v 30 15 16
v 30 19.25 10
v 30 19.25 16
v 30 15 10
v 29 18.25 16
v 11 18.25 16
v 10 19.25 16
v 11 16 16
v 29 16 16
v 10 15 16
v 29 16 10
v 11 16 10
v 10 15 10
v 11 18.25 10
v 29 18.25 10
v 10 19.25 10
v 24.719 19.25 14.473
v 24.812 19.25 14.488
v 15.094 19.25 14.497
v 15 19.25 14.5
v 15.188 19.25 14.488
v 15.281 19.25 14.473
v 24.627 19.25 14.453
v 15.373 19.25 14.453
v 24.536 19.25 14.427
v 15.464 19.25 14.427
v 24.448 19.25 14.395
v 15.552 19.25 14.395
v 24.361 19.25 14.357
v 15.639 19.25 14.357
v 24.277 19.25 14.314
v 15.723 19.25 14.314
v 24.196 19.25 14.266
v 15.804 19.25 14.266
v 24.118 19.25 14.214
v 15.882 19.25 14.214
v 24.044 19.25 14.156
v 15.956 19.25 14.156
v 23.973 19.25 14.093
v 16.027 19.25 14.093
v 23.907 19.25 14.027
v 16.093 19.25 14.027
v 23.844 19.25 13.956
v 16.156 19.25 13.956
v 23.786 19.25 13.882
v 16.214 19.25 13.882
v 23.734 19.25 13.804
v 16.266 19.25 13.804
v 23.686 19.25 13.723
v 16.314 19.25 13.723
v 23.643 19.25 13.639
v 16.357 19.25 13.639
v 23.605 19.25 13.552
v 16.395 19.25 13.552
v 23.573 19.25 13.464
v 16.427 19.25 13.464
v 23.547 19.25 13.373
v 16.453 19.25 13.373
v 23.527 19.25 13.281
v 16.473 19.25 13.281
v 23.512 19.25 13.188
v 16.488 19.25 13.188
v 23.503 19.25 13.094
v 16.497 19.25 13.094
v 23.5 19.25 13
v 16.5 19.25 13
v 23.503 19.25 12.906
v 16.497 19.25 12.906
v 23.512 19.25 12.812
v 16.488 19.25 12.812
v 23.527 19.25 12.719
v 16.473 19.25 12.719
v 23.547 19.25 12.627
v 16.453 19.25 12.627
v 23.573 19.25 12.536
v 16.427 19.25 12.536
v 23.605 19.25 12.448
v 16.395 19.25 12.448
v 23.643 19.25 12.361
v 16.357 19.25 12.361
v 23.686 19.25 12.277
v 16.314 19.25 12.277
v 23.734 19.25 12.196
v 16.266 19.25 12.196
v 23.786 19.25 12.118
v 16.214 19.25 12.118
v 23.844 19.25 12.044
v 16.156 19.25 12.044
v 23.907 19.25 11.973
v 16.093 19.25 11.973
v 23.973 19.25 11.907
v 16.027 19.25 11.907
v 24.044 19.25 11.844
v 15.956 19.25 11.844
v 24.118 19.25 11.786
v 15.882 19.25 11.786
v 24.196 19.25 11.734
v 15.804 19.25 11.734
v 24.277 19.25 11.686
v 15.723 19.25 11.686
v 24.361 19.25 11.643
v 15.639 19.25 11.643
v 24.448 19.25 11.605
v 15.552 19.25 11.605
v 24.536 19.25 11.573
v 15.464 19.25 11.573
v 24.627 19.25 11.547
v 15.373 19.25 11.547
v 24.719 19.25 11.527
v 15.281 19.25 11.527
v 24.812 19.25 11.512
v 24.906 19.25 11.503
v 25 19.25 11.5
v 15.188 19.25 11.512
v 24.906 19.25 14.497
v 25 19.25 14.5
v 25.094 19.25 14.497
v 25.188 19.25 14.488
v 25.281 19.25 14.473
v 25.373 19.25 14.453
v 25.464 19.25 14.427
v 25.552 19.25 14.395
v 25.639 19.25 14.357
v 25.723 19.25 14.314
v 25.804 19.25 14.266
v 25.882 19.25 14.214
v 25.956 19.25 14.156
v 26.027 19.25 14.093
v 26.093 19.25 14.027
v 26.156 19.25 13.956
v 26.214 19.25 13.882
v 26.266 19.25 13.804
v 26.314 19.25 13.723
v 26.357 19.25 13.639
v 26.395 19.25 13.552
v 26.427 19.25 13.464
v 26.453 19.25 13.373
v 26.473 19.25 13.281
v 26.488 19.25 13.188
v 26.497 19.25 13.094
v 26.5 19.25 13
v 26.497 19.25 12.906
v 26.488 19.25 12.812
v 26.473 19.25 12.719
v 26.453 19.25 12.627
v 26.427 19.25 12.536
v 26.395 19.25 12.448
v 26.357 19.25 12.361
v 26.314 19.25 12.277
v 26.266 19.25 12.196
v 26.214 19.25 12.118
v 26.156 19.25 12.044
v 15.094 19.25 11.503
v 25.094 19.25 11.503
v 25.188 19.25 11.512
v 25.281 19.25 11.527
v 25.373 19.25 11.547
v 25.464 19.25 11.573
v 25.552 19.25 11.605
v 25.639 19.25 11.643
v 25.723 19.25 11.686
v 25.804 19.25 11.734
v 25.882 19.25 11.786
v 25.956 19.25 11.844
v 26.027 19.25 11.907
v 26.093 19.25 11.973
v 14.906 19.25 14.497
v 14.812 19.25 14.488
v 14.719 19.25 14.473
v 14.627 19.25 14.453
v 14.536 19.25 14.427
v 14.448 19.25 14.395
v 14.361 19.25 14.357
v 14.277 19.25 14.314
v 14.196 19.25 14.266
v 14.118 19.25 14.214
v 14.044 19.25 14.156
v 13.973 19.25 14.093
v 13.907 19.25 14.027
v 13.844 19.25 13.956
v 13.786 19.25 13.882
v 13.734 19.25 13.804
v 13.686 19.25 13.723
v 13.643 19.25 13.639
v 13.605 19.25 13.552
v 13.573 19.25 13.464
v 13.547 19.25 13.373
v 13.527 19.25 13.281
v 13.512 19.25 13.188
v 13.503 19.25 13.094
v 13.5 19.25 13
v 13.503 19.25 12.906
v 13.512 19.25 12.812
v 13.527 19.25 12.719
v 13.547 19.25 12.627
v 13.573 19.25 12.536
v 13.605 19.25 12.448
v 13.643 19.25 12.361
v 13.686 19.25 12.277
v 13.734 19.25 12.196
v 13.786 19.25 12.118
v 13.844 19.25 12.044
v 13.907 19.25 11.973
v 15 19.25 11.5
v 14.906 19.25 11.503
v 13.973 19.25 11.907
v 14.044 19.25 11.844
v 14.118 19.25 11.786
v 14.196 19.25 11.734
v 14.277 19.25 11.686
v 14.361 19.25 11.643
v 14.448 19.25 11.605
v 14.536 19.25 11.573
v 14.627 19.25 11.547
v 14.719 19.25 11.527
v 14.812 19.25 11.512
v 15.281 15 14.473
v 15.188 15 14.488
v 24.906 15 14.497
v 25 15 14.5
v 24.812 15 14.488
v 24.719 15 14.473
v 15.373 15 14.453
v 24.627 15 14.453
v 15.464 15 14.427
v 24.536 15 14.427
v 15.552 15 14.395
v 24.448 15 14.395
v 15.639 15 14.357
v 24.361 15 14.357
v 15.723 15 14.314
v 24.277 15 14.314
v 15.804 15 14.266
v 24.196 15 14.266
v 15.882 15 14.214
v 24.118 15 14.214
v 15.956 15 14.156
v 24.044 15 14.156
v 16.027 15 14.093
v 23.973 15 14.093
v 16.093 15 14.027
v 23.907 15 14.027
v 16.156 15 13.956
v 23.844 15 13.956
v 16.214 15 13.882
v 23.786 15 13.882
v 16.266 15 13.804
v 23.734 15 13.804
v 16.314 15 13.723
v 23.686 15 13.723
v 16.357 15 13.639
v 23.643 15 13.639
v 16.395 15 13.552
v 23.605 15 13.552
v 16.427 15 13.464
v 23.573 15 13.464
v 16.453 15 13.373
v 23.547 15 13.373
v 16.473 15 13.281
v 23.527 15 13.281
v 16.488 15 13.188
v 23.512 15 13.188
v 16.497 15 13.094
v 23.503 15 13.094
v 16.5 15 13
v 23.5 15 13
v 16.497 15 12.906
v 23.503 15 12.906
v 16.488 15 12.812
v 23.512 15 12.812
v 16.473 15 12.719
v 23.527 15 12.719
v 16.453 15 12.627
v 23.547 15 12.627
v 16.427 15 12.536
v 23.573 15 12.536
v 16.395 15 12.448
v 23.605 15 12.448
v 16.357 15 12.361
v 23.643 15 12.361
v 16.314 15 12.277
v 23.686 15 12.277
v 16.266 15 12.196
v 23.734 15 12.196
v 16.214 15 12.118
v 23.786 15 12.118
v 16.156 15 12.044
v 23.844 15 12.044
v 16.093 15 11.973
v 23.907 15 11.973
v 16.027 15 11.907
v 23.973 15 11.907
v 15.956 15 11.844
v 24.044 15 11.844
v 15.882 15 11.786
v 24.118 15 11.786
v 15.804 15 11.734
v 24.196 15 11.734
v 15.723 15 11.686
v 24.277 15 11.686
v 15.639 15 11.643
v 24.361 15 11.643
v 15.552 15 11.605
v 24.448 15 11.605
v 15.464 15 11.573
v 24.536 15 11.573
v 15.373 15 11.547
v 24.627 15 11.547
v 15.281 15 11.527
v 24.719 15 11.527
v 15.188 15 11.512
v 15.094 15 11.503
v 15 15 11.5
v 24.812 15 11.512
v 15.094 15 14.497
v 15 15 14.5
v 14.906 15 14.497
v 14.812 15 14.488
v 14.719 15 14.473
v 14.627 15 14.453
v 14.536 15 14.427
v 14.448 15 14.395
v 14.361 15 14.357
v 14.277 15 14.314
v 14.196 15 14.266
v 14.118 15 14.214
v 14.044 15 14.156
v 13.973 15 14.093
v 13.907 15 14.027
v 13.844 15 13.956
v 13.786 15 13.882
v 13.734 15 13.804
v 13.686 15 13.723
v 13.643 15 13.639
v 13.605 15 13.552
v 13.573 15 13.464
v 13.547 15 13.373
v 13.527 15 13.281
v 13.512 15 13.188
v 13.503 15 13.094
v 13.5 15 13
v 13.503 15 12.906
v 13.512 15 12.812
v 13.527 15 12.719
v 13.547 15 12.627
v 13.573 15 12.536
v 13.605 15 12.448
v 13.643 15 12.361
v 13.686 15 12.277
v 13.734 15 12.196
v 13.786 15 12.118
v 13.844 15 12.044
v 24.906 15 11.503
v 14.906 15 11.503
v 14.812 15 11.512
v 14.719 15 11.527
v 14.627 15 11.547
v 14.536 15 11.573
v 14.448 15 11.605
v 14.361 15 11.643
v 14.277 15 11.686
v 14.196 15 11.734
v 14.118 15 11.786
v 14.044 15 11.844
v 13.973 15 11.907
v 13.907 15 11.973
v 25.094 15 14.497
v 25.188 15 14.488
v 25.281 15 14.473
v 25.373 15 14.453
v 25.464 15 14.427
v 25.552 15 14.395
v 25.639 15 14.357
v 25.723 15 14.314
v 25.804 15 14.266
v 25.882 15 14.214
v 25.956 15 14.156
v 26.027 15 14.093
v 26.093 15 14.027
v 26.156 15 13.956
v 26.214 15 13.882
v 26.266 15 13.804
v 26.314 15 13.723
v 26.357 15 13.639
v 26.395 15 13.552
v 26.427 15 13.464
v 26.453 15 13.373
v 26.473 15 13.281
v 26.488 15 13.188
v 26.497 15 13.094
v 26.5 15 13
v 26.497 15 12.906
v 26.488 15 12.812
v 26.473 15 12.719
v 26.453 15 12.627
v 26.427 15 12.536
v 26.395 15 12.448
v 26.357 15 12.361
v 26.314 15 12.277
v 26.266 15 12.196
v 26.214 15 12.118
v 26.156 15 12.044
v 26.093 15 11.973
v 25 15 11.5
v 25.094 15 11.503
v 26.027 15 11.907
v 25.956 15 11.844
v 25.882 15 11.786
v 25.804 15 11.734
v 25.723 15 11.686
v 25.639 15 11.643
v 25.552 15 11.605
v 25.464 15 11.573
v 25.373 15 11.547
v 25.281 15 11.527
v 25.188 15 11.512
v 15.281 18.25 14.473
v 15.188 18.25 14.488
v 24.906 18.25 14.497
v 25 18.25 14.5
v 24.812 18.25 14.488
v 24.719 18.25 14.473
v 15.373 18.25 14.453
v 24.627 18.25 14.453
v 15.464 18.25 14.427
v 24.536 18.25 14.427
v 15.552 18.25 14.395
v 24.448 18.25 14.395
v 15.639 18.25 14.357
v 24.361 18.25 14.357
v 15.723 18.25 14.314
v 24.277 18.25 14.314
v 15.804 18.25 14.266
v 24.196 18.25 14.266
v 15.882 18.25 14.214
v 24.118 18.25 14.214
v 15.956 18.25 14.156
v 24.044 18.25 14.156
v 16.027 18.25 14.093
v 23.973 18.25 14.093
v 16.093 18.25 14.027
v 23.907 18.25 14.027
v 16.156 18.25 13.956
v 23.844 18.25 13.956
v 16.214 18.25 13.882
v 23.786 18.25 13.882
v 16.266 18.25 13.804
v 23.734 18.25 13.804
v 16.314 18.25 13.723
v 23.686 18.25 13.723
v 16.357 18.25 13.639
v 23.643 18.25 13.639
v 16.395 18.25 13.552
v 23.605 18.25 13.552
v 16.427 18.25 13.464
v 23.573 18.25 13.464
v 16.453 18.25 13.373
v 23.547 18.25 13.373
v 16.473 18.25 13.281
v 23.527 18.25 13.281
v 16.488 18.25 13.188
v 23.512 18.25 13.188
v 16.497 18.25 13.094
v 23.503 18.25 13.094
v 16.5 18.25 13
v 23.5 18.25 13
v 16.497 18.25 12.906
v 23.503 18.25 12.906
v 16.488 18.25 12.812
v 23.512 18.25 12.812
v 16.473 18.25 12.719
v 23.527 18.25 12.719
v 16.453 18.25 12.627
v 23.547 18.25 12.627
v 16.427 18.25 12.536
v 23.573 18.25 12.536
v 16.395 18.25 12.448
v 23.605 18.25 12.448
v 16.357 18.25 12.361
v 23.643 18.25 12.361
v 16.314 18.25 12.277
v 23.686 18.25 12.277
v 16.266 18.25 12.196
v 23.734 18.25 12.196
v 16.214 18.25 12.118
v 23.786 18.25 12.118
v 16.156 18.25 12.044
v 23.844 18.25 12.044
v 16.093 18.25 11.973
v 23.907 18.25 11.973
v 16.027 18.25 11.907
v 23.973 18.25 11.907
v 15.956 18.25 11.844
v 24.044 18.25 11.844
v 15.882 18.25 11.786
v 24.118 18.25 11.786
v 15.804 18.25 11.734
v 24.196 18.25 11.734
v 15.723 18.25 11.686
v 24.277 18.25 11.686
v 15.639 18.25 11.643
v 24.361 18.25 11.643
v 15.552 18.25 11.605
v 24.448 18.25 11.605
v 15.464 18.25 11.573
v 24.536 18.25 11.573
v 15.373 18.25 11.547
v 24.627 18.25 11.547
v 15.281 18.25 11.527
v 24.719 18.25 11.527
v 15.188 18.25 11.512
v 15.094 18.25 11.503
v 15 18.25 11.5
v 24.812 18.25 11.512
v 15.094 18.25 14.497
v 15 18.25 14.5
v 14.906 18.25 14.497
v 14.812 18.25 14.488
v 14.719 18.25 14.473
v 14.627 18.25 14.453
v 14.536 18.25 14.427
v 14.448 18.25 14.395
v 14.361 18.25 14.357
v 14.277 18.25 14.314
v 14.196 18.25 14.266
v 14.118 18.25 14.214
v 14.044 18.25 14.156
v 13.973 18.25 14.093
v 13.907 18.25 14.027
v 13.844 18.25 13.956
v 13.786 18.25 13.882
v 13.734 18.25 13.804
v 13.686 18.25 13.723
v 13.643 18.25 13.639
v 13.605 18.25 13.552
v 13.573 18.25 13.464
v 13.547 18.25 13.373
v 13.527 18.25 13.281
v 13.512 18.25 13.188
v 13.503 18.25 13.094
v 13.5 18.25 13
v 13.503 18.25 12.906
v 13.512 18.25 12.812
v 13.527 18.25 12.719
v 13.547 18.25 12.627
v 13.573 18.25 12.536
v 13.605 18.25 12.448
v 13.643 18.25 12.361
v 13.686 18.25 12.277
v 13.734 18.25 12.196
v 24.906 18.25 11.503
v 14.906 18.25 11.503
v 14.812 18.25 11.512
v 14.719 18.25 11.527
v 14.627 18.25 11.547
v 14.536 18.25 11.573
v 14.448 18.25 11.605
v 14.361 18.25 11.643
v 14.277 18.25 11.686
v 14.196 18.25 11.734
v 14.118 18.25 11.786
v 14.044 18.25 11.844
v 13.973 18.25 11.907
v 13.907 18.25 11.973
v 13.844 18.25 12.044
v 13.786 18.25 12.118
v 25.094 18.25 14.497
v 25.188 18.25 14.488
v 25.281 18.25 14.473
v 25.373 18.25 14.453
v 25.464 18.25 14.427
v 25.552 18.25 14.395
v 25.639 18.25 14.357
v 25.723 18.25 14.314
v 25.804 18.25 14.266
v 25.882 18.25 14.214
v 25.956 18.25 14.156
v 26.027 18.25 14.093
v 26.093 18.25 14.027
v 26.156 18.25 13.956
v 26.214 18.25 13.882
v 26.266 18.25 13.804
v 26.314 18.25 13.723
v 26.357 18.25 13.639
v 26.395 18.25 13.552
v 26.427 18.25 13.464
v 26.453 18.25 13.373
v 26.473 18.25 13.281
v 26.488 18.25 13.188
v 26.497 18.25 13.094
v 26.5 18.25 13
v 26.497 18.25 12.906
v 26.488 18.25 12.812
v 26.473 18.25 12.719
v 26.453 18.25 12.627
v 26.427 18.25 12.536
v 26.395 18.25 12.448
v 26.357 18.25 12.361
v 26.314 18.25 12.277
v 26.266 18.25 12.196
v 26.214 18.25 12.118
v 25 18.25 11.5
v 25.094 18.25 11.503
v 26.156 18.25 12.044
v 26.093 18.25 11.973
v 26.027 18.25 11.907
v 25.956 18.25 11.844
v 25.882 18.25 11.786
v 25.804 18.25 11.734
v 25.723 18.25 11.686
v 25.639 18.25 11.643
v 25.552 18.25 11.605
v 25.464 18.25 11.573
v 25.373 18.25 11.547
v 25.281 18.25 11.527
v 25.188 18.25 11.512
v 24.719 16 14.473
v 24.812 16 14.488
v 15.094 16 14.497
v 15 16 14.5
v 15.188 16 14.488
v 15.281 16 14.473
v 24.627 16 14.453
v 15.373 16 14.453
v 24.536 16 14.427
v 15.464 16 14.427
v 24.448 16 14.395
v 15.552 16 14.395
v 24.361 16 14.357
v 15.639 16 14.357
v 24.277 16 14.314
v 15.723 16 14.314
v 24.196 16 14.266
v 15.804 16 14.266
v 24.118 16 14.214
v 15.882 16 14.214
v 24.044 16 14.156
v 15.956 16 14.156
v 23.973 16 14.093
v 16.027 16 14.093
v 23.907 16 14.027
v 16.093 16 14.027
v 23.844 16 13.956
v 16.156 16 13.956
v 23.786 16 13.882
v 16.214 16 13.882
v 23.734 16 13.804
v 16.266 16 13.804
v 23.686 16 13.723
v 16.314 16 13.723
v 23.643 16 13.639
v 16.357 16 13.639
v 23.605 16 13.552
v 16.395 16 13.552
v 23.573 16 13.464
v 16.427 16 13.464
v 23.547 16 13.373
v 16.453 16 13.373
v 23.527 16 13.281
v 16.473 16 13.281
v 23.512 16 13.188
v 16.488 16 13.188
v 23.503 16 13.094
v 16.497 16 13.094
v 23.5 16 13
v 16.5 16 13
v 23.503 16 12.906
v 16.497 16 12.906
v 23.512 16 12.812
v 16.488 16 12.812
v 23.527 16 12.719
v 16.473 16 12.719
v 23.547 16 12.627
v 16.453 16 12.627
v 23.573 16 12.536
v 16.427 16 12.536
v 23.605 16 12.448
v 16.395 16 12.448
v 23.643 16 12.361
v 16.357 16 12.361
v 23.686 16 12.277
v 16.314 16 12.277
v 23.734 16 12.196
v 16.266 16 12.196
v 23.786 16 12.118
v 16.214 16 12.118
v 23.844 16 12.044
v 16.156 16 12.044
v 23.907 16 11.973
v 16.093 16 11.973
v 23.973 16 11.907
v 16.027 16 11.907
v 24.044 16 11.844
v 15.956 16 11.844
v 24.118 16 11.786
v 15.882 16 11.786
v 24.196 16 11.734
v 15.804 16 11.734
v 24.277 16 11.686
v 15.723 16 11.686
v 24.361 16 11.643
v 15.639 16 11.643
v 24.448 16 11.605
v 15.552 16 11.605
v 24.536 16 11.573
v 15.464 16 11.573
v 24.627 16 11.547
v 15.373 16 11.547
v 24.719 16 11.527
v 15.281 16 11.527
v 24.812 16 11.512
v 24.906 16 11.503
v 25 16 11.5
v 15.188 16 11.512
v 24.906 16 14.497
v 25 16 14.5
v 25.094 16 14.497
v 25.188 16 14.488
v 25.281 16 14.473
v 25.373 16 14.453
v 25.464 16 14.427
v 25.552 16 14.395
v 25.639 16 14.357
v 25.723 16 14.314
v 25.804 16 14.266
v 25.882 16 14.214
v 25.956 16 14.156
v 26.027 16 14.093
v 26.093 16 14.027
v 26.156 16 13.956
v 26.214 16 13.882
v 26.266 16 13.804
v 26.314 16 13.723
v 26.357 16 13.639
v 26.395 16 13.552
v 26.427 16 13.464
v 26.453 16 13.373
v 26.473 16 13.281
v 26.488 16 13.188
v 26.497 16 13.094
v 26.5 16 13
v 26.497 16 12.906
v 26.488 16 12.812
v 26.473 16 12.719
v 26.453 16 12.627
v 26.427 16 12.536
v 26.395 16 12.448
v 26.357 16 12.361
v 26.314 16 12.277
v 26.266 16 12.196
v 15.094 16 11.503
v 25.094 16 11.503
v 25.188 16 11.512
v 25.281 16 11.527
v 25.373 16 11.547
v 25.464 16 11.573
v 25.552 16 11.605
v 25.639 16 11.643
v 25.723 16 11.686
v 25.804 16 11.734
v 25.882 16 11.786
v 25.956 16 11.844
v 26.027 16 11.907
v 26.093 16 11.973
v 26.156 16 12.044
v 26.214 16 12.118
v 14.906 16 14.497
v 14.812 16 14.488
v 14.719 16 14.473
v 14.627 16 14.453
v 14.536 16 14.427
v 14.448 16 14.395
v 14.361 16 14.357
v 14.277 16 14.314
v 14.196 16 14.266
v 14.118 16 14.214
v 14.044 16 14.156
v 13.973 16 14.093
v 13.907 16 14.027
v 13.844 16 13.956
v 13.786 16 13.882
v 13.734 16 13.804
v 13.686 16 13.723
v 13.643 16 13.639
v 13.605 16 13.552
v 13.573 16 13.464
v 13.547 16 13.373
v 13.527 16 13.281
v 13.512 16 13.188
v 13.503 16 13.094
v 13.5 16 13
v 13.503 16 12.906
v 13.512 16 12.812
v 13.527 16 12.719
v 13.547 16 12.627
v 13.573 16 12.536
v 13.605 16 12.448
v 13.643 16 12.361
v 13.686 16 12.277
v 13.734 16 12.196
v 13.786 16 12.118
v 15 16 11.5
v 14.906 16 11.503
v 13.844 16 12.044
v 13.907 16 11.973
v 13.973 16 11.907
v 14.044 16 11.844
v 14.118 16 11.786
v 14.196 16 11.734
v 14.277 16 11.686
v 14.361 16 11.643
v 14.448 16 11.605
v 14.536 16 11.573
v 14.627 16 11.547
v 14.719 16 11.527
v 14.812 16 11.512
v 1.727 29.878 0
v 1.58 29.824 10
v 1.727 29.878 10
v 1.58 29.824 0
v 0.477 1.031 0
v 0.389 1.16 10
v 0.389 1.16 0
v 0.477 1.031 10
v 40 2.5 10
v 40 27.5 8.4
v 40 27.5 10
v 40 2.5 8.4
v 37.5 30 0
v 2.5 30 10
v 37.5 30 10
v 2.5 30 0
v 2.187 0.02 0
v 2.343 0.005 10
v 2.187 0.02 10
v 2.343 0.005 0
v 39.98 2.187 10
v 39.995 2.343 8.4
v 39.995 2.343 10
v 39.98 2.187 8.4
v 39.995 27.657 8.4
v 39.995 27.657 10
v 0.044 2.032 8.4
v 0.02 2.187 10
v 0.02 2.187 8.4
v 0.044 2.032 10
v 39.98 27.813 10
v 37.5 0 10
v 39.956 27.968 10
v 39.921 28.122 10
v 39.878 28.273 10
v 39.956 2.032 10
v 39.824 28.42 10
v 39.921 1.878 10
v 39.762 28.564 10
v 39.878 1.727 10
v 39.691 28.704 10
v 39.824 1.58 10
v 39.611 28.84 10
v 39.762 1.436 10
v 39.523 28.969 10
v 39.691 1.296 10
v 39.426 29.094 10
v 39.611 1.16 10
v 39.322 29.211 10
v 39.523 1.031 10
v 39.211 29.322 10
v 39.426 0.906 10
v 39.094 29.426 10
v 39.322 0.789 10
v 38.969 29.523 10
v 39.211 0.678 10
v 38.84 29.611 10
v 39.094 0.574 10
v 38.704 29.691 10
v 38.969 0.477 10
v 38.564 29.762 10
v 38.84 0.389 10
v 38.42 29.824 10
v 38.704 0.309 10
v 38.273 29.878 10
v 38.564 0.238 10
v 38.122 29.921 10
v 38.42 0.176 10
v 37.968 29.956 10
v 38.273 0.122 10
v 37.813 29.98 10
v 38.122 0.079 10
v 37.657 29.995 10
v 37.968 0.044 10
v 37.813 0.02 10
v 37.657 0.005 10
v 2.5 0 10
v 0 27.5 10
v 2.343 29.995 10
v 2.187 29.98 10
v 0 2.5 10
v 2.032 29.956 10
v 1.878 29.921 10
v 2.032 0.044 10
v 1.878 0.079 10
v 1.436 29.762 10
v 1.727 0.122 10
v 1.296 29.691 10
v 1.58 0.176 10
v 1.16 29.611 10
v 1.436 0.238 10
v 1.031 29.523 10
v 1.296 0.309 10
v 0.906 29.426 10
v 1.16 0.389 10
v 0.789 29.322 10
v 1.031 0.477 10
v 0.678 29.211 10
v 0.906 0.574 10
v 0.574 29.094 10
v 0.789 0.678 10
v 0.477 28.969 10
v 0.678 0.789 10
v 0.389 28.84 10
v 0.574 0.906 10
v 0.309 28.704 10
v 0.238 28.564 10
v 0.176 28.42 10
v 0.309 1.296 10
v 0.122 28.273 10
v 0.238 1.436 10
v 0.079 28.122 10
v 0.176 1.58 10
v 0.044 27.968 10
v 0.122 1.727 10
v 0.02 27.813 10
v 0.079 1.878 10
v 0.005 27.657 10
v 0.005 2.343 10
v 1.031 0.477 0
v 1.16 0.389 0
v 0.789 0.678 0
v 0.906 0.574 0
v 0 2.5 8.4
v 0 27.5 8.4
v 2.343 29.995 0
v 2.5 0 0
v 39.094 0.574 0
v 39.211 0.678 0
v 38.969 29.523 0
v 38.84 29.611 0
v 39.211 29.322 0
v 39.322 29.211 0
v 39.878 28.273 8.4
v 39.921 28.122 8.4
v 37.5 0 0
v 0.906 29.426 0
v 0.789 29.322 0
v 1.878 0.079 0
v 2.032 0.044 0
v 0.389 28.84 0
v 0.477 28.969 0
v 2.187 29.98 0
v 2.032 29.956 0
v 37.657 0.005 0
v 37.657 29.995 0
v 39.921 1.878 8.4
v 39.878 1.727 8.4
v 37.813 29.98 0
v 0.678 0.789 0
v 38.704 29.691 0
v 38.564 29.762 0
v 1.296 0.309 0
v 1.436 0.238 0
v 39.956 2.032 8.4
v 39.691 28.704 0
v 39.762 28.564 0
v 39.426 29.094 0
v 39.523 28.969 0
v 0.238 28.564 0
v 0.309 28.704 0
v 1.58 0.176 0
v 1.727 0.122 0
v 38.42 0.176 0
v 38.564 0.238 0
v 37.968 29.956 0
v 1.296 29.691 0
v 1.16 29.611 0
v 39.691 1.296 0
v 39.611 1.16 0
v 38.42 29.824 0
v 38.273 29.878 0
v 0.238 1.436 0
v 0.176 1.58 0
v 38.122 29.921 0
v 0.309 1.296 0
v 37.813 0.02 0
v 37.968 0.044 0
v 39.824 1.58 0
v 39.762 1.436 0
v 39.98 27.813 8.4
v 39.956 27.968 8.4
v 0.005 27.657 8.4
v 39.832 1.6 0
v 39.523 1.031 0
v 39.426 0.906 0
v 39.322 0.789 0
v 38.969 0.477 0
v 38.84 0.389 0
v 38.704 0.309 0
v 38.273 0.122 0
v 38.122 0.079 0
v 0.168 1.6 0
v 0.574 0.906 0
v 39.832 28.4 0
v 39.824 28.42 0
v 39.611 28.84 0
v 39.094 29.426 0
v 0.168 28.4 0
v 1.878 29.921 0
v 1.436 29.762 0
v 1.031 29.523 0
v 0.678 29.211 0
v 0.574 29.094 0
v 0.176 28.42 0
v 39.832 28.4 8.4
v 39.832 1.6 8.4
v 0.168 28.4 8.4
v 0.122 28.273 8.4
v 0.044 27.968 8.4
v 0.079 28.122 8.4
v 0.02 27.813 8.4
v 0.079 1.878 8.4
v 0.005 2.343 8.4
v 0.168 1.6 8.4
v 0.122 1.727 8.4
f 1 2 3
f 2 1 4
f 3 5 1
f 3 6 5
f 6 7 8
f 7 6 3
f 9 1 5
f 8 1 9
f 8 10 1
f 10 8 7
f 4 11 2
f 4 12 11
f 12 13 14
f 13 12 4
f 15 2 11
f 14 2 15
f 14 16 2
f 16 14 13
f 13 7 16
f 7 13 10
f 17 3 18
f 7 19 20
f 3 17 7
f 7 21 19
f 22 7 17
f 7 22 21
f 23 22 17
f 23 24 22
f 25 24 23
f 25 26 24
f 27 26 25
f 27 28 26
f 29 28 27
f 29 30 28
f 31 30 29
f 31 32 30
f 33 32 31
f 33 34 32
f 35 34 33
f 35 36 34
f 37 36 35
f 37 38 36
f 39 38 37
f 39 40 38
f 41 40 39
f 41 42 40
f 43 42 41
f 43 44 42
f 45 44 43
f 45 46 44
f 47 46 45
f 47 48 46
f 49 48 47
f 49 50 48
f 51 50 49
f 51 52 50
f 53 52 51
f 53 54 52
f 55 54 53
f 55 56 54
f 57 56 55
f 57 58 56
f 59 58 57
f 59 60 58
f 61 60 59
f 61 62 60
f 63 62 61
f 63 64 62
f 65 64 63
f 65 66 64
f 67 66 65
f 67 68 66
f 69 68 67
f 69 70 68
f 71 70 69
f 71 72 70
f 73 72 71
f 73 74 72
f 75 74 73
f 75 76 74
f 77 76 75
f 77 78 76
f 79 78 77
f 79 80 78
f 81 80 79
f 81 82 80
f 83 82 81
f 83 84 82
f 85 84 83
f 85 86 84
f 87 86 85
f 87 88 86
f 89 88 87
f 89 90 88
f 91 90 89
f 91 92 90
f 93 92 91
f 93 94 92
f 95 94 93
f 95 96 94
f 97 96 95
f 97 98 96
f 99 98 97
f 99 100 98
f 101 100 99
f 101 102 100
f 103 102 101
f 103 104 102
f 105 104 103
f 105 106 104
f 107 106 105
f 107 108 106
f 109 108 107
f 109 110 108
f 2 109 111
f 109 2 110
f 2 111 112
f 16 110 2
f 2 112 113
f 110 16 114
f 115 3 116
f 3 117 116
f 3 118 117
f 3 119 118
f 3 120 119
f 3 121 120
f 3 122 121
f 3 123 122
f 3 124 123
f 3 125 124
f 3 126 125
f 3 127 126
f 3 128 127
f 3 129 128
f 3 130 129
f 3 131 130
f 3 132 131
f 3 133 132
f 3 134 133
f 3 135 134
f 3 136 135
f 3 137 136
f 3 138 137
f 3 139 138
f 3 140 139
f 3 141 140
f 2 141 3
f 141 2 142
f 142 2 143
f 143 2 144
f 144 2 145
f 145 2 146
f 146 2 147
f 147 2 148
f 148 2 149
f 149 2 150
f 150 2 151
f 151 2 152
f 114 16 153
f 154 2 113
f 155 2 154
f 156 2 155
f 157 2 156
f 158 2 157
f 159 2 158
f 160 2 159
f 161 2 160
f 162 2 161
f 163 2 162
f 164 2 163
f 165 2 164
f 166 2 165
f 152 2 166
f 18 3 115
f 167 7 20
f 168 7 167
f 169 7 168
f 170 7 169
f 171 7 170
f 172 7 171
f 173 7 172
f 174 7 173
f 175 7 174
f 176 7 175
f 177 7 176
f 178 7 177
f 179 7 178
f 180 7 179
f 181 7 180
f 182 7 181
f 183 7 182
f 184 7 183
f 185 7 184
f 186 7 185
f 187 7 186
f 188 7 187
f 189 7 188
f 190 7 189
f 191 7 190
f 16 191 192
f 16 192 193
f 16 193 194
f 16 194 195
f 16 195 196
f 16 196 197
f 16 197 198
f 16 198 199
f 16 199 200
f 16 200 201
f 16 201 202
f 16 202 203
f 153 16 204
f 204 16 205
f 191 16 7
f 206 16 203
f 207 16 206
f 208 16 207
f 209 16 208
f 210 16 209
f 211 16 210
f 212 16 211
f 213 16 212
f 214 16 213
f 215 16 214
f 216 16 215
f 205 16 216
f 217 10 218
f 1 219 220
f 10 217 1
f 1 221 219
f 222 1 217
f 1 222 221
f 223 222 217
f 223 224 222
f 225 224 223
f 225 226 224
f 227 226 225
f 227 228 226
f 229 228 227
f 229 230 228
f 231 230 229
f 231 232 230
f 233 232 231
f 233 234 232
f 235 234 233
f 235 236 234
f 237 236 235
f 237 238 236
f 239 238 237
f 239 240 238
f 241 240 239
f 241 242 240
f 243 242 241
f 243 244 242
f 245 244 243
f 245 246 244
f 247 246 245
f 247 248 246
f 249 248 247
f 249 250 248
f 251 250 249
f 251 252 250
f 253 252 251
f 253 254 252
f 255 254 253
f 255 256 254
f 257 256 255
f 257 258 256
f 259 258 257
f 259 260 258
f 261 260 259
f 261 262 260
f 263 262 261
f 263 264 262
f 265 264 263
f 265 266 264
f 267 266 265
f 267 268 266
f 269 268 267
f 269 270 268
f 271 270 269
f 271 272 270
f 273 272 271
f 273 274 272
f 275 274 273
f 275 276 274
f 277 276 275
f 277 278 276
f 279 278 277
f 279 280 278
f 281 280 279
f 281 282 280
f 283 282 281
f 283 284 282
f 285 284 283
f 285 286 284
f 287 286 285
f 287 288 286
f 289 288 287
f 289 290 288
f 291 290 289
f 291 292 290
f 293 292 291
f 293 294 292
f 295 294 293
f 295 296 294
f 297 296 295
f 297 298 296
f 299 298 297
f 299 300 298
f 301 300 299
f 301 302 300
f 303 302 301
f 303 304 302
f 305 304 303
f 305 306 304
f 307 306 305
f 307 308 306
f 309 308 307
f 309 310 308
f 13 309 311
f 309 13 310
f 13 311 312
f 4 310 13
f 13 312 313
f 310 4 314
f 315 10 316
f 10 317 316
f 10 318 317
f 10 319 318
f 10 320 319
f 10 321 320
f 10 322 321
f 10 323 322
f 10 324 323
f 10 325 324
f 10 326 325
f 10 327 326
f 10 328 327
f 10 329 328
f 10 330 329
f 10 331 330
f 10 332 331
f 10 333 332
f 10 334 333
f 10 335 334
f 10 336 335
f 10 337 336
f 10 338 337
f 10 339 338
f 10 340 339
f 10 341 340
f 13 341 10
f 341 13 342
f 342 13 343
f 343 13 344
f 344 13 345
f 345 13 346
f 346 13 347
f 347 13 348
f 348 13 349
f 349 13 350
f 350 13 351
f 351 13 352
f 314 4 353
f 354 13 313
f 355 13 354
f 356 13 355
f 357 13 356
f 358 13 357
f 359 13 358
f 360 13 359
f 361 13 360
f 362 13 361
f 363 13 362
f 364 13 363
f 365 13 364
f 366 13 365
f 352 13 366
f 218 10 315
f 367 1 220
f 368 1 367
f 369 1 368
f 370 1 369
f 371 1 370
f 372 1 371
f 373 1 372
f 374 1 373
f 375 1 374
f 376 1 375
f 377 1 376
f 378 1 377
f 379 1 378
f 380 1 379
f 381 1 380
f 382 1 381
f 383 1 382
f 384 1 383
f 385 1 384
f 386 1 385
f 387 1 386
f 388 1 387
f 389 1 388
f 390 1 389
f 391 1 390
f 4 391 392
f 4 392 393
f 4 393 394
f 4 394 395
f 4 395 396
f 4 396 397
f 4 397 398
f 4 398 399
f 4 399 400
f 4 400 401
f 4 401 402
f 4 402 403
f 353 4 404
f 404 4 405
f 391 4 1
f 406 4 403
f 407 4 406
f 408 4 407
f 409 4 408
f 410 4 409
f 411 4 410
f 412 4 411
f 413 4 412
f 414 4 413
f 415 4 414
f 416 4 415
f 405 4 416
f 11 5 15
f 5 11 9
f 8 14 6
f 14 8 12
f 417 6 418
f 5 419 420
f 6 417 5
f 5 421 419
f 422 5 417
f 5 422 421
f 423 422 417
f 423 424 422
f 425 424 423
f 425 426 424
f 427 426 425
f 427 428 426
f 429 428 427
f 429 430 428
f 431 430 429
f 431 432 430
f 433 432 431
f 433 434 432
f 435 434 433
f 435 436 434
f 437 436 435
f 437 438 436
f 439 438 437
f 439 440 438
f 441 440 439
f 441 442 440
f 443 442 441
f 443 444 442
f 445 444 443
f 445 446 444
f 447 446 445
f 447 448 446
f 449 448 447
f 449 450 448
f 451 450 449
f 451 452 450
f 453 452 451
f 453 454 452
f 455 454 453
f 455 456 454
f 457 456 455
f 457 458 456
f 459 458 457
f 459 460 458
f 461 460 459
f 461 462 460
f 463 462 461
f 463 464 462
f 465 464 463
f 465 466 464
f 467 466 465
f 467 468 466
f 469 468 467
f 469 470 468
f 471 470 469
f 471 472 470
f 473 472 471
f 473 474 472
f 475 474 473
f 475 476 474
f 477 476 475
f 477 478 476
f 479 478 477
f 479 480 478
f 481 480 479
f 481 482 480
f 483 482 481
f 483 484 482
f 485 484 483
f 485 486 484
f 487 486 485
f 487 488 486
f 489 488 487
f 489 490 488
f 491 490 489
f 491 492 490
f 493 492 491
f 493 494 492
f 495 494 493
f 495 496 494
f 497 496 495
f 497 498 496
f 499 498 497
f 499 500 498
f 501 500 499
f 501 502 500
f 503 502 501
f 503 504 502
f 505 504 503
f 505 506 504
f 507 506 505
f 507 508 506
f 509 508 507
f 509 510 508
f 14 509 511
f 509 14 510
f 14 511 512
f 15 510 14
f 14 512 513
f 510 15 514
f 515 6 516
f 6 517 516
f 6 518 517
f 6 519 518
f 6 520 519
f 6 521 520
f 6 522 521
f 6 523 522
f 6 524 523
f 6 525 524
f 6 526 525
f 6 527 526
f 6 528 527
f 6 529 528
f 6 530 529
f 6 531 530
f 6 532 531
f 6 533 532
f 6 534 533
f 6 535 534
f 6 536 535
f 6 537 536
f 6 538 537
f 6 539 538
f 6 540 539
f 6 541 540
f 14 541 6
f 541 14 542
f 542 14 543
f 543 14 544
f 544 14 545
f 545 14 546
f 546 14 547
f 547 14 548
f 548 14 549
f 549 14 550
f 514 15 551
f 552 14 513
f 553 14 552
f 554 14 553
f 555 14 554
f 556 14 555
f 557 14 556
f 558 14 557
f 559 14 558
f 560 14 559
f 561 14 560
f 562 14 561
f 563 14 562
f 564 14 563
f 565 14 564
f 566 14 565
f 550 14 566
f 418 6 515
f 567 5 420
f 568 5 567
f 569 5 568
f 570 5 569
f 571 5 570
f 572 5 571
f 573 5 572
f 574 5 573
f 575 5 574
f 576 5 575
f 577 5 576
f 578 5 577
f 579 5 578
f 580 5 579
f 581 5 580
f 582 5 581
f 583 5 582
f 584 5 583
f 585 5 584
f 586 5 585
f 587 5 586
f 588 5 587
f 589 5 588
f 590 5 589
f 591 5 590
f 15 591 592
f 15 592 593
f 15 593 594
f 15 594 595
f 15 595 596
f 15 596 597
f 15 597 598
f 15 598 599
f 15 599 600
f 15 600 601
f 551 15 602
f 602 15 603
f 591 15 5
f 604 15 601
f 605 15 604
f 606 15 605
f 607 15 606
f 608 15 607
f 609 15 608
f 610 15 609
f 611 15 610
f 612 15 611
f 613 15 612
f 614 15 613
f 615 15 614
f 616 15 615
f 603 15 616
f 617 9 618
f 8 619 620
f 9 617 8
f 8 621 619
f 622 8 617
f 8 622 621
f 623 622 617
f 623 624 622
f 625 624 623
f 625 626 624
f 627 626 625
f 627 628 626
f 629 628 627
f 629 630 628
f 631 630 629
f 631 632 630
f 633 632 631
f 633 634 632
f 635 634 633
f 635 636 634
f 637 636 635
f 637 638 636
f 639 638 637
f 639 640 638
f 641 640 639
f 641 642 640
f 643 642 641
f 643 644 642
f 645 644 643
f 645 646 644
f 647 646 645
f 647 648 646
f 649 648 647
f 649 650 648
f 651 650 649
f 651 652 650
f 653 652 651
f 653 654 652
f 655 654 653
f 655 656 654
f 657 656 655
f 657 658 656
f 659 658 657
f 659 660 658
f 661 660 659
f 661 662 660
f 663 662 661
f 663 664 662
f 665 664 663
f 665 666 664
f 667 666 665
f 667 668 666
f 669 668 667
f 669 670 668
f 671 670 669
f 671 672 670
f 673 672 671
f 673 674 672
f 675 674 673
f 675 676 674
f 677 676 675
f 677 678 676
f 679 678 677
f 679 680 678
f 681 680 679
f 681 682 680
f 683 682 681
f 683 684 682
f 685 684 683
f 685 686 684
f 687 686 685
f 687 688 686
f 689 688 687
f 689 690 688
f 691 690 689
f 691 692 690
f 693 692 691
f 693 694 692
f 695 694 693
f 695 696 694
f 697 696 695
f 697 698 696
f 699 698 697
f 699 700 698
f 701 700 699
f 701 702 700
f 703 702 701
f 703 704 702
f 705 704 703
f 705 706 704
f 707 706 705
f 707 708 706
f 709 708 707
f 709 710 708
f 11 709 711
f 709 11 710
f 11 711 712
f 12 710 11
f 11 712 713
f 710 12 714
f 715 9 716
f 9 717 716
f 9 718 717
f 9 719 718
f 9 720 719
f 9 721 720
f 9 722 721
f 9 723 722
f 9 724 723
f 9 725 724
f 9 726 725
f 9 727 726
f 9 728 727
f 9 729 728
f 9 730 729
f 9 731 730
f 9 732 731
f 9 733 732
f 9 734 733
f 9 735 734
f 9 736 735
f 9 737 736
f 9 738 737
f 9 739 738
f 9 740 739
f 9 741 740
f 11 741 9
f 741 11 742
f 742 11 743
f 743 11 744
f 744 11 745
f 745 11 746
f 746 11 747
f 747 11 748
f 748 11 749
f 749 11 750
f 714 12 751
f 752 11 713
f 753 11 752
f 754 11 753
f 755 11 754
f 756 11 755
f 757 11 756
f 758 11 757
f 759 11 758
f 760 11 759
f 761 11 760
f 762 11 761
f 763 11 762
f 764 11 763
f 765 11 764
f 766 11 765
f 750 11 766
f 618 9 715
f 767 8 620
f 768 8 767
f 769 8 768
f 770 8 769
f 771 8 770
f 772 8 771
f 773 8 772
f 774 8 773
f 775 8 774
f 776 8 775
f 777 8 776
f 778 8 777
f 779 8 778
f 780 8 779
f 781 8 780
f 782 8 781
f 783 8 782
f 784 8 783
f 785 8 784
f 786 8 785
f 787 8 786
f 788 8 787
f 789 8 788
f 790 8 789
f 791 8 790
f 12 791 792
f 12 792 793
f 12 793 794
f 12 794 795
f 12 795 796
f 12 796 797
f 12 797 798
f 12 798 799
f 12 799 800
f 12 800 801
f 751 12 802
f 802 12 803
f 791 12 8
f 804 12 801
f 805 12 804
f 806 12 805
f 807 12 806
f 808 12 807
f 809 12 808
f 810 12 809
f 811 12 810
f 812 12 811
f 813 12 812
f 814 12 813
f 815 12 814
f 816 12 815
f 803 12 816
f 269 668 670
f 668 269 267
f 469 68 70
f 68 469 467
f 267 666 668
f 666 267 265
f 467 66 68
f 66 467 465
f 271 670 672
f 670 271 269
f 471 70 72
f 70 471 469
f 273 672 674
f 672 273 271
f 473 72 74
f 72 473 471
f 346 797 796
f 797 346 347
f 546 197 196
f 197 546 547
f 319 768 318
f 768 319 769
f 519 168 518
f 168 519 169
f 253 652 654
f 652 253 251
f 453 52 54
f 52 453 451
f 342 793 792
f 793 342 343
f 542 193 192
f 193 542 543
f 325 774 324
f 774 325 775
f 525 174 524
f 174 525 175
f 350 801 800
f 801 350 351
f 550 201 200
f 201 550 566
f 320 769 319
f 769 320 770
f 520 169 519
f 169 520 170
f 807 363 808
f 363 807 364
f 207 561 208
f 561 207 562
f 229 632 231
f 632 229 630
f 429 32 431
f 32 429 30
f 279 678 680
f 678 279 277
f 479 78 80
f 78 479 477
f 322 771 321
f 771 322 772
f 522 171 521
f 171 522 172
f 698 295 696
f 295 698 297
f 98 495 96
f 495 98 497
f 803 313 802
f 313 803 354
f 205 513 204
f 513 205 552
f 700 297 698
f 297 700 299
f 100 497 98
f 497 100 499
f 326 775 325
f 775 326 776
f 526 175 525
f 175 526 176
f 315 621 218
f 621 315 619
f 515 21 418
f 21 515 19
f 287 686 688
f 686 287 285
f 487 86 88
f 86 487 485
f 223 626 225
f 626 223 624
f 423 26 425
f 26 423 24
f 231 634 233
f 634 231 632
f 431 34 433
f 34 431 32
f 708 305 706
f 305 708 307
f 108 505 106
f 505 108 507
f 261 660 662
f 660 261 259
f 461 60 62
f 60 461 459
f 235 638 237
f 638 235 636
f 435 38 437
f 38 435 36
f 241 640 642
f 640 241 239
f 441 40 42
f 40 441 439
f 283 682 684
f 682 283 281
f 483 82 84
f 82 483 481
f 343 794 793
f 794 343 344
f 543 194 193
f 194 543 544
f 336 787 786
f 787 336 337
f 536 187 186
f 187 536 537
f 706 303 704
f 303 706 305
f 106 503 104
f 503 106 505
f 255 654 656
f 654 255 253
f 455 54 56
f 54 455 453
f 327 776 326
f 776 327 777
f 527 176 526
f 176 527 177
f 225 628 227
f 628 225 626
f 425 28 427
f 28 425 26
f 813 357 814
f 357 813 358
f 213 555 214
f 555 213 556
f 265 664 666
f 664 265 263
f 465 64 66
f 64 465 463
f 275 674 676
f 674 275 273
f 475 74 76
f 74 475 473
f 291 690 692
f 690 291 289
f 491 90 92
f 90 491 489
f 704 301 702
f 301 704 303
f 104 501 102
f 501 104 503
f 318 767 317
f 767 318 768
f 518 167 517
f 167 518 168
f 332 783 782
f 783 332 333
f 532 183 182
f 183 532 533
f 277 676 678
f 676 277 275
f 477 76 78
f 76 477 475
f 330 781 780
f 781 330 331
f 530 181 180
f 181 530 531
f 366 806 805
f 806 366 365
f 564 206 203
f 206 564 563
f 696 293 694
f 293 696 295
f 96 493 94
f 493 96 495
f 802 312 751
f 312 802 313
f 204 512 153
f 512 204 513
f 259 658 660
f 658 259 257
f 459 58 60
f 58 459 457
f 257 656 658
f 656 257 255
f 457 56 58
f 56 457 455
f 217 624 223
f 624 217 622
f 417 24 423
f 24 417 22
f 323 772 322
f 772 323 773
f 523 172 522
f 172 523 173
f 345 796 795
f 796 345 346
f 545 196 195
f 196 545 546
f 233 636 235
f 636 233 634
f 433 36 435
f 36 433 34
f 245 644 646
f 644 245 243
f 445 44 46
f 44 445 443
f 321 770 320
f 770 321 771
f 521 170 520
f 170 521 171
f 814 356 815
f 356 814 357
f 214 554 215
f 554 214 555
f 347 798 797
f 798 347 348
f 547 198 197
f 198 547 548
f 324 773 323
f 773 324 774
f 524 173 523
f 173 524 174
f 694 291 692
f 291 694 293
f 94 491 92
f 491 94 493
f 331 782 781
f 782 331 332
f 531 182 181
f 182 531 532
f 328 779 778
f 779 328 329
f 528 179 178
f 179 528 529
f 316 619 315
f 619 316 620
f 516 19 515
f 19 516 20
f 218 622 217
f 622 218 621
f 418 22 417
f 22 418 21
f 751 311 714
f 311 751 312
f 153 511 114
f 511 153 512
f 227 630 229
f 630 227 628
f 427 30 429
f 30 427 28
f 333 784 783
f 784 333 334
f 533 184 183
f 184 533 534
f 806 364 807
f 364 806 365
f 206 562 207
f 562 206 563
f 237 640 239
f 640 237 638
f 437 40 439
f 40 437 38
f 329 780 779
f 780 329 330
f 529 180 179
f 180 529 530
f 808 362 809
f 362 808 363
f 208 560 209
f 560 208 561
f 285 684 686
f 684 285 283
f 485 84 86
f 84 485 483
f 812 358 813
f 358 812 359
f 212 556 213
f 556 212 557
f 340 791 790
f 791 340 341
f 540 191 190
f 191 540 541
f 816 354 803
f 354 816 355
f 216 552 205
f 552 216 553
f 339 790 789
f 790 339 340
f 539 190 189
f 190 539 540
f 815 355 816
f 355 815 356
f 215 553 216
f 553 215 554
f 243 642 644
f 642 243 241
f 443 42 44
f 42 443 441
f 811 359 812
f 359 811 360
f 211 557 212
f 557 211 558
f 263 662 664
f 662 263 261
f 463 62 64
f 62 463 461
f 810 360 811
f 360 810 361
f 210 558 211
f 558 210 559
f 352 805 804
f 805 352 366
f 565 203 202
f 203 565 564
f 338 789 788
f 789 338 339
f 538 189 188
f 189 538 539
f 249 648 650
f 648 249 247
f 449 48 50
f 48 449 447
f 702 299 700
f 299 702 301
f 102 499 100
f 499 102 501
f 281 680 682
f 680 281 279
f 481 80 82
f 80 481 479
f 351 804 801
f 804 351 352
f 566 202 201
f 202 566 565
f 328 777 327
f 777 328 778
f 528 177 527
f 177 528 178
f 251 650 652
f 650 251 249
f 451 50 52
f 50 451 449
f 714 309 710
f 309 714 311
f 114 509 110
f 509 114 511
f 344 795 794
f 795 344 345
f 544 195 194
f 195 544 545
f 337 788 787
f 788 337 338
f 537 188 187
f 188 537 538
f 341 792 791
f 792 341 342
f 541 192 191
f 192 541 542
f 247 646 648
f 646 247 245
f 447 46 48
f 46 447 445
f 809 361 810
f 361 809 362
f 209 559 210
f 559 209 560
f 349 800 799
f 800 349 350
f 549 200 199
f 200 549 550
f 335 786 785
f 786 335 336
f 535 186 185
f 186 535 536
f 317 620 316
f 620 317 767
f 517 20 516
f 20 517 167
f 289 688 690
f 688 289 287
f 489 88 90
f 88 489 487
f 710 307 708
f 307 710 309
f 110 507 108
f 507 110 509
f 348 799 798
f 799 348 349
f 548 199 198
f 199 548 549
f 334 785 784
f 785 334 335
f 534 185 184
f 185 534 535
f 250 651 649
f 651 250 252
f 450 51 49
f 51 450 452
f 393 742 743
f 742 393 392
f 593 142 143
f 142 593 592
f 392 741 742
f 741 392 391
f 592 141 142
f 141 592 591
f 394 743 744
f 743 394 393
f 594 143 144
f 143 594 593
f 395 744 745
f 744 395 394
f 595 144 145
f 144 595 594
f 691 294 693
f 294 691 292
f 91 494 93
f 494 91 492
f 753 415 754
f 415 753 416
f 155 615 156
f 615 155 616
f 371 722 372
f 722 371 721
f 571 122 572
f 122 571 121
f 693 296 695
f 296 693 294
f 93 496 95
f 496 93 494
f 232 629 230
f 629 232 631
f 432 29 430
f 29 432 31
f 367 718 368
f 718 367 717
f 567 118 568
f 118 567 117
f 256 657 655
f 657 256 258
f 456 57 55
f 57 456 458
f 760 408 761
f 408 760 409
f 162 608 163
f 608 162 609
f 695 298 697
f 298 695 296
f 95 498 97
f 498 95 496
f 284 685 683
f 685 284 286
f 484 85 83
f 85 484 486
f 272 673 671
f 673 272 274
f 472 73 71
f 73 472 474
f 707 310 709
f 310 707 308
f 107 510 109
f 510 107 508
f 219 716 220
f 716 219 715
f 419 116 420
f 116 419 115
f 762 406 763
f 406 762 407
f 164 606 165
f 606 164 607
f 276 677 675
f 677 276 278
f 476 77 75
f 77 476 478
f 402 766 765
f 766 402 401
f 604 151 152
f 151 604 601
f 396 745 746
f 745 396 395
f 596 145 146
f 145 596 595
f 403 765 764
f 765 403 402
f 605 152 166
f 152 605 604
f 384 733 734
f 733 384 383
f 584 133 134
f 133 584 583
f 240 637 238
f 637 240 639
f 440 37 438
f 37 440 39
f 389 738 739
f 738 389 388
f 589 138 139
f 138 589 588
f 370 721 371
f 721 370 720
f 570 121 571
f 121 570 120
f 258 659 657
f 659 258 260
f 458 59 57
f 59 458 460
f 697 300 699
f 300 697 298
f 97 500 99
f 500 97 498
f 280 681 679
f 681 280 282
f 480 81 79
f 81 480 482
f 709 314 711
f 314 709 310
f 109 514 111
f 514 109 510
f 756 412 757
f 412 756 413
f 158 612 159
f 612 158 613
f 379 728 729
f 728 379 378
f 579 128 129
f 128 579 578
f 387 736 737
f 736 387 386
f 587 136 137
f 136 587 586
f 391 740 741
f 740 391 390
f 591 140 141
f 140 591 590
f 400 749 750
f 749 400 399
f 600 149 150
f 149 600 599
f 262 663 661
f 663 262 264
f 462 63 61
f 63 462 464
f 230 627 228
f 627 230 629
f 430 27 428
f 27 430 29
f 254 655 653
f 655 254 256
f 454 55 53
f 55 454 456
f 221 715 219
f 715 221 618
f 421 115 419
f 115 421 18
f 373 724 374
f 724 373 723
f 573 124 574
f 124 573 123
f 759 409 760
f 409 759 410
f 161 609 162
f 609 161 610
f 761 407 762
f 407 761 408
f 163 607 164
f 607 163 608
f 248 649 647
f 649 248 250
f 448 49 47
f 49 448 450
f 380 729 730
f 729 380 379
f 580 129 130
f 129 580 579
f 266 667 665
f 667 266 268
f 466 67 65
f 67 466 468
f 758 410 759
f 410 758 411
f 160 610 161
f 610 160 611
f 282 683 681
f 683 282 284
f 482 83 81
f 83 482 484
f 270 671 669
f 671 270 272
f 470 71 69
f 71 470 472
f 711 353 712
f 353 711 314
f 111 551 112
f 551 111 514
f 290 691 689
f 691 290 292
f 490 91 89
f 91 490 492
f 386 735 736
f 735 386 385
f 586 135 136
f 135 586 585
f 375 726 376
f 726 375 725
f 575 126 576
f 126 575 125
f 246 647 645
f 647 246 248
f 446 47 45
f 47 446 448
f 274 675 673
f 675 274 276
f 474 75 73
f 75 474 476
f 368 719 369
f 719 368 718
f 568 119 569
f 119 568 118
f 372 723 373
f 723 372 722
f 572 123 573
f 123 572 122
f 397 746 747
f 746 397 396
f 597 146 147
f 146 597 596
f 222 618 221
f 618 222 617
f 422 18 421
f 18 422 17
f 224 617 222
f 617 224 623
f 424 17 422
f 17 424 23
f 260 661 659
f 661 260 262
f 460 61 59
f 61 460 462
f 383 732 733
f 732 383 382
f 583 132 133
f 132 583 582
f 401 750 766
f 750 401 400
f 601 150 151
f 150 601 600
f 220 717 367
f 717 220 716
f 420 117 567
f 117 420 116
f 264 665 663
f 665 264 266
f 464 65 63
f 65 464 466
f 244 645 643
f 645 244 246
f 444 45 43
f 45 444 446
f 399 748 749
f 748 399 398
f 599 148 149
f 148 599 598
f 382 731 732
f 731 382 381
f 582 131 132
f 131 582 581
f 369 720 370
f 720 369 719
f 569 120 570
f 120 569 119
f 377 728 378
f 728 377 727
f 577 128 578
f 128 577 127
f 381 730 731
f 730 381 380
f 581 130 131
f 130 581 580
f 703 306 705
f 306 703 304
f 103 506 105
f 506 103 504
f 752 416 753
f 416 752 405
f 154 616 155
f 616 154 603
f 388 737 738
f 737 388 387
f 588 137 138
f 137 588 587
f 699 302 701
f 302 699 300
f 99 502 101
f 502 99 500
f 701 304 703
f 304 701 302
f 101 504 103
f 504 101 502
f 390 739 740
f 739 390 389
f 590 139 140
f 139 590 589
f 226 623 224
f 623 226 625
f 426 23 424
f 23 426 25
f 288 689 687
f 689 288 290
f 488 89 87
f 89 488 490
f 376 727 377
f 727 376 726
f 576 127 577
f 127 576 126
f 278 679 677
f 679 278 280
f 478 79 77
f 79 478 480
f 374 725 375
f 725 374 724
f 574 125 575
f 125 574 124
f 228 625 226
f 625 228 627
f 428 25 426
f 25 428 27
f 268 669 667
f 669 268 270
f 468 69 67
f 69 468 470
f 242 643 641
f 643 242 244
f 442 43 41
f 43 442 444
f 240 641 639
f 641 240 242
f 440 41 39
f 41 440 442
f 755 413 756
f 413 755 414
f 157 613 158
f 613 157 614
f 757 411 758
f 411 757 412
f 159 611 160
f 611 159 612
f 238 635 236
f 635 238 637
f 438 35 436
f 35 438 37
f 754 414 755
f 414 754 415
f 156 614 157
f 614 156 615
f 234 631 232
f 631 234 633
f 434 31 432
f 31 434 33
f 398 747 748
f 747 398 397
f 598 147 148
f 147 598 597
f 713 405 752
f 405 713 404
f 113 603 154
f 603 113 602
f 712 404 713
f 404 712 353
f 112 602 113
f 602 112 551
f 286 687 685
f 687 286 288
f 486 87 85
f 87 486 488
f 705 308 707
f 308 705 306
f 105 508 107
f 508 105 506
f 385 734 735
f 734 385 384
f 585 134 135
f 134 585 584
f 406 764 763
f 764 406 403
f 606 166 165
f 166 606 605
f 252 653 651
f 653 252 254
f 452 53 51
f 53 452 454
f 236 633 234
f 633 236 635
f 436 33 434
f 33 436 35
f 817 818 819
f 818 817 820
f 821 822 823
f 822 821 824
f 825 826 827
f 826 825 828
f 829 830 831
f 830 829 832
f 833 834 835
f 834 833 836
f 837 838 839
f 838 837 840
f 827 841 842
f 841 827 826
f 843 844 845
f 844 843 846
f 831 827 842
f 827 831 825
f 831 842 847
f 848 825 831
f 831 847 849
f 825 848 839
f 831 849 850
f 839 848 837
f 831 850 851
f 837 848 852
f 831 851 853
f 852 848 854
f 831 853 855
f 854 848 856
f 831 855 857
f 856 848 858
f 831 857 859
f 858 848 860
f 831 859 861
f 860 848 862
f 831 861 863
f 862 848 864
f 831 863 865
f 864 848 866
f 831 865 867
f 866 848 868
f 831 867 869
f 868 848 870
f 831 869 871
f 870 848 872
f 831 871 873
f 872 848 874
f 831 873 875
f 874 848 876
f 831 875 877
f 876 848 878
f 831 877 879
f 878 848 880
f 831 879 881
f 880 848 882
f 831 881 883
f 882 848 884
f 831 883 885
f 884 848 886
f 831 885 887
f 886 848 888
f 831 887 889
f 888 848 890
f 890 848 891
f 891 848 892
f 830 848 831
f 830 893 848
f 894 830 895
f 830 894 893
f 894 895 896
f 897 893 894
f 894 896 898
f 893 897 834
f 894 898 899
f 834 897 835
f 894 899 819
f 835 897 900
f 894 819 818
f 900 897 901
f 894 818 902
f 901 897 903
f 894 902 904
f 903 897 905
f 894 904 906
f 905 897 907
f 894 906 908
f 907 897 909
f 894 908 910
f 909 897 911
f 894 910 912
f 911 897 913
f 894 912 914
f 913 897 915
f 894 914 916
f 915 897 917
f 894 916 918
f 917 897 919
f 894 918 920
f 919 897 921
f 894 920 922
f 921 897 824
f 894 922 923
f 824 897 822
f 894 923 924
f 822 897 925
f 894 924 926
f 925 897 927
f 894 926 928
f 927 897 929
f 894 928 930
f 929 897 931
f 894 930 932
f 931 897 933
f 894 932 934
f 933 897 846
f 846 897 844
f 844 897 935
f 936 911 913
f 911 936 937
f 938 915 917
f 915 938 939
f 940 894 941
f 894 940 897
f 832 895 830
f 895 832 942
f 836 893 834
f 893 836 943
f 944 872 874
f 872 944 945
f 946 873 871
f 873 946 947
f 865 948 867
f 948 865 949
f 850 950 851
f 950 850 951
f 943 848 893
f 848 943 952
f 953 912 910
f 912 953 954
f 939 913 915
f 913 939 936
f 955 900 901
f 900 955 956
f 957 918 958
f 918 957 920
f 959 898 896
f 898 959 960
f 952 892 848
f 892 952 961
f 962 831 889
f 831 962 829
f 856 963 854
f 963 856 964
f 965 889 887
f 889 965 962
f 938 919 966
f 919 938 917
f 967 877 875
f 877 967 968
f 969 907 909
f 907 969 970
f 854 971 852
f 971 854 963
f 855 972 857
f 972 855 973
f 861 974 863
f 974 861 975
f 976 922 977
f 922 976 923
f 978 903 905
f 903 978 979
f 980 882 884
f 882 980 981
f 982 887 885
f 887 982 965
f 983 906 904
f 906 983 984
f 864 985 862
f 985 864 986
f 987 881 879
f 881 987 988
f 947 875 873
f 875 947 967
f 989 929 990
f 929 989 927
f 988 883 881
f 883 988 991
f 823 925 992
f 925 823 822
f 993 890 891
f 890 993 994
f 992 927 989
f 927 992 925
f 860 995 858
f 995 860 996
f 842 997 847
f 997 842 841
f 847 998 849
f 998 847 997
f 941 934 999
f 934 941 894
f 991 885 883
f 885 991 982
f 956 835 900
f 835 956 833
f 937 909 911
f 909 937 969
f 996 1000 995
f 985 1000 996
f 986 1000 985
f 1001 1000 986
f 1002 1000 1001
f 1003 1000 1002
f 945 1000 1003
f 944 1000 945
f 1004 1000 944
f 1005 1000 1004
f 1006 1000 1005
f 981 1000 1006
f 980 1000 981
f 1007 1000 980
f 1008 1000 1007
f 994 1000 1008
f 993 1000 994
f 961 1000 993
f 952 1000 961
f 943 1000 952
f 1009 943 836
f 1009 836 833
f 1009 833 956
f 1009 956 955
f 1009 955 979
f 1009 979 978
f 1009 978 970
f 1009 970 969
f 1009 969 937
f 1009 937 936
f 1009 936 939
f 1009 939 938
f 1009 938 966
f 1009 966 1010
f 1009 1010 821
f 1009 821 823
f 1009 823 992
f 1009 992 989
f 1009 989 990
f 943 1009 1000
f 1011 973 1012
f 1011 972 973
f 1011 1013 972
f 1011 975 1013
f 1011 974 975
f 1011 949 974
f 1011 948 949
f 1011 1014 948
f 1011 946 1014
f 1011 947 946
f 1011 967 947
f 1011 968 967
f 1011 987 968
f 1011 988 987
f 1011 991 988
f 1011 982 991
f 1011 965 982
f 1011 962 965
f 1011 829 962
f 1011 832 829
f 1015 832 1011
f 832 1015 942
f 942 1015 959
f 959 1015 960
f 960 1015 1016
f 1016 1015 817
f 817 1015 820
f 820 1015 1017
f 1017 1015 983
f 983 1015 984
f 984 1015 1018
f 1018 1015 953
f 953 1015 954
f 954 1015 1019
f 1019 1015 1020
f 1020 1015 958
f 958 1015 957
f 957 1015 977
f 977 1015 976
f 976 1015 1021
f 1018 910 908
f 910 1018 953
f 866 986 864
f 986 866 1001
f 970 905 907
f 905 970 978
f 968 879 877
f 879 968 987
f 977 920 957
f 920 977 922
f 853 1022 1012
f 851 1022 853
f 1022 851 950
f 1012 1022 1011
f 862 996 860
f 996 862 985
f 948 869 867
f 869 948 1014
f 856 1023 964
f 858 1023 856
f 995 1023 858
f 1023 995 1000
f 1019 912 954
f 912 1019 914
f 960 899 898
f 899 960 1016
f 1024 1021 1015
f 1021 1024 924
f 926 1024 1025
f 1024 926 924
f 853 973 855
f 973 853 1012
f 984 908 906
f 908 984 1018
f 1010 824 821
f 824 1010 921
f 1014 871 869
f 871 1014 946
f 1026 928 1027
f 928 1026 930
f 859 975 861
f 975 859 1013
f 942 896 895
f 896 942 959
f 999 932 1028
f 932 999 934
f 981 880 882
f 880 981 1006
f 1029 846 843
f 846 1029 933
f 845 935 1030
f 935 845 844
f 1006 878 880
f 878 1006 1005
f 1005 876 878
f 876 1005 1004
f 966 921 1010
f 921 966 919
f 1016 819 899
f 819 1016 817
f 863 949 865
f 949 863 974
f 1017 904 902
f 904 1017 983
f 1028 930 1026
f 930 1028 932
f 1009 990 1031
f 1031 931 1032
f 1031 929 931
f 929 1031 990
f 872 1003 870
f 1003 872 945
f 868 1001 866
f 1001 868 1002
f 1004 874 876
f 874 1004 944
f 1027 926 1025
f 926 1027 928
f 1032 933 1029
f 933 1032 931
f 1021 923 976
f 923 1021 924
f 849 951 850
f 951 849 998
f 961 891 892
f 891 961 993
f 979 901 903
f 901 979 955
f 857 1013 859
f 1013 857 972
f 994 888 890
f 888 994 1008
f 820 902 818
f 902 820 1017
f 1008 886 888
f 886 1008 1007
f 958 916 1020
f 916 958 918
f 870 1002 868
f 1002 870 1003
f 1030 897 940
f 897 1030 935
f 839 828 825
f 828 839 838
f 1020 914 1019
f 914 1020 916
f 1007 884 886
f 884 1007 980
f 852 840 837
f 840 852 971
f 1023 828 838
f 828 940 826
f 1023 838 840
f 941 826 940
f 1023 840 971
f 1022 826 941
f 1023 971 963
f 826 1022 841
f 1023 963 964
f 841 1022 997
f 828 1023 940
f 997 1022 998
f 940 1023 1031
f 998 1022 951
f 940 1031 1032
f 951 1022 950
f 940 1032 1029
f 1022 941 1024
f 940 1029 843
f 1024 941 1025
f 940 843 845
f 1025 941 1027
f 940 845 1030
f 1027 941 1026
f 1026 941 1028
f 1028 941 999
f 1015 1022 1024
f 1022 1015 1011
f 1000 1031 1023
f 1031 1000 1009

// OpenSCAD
$fn=100;

module base() {
    $h=0.1;
    $d=5;
    $r=$d/2;
    translate([$r,$r,0])
    minkowski() {
        cube([$base_x-$d,$base_y-$d,$base_z-$h]);
        cylinder(h=$h, d=$d);
    }
}

module cut_side() {
    $x=5;
    $y=5;
    $z=$base_z;
    translate([0,$base_y-$y-10,0])
    union() {
        cube([$x,$y,$z]);        
        translate([$x,0,0])
        linear_extrude(height=$base_z) {
            hull() {
                translate([0,$y,0]) circle(2);
                circle(2);
            }
        }
    }
}

module mothers() {
    $ip=3.5;        // inner padding    
    $ws=1;          // wall size
    $sz=2.25;       // mother's height
    $x=$front_x;    // width
    $y=$sz+2*$ws;   // depth
    $z=6;           // height    
    $d=3;           // screw's d
    $r=$d/2;        // screw's r

    translate([($base_x-$front_x)/2,$front_y,$base_z])

    difference() {
        cube([$x,$y,$z]);
        translate([$ws,$ws,0])
        cube([$x-2*$ws,$sz,$z]);

        rotate([-90,0,0])
        translate([$r+$ip,-($z-$d),0])
        cylinder(h=$z, d=$d);

        rotate([-90,0,0])
        translate([$front_x-$r-$ip,-($z-$d),0])
        cylinder(h=$z, d=$d);
    }
}

$base_x=40;
$base_y=30;
$base_z=10;

$ws=1.6;

$front_x=20;
$front_y=15;


difference() {
    base();
    color("blue")
    translate([0, $ws, 0])
    cube([$base_x,$base_y-2*$ws,$base_z-$ws]);
//    cut_side();
}
mothers();
